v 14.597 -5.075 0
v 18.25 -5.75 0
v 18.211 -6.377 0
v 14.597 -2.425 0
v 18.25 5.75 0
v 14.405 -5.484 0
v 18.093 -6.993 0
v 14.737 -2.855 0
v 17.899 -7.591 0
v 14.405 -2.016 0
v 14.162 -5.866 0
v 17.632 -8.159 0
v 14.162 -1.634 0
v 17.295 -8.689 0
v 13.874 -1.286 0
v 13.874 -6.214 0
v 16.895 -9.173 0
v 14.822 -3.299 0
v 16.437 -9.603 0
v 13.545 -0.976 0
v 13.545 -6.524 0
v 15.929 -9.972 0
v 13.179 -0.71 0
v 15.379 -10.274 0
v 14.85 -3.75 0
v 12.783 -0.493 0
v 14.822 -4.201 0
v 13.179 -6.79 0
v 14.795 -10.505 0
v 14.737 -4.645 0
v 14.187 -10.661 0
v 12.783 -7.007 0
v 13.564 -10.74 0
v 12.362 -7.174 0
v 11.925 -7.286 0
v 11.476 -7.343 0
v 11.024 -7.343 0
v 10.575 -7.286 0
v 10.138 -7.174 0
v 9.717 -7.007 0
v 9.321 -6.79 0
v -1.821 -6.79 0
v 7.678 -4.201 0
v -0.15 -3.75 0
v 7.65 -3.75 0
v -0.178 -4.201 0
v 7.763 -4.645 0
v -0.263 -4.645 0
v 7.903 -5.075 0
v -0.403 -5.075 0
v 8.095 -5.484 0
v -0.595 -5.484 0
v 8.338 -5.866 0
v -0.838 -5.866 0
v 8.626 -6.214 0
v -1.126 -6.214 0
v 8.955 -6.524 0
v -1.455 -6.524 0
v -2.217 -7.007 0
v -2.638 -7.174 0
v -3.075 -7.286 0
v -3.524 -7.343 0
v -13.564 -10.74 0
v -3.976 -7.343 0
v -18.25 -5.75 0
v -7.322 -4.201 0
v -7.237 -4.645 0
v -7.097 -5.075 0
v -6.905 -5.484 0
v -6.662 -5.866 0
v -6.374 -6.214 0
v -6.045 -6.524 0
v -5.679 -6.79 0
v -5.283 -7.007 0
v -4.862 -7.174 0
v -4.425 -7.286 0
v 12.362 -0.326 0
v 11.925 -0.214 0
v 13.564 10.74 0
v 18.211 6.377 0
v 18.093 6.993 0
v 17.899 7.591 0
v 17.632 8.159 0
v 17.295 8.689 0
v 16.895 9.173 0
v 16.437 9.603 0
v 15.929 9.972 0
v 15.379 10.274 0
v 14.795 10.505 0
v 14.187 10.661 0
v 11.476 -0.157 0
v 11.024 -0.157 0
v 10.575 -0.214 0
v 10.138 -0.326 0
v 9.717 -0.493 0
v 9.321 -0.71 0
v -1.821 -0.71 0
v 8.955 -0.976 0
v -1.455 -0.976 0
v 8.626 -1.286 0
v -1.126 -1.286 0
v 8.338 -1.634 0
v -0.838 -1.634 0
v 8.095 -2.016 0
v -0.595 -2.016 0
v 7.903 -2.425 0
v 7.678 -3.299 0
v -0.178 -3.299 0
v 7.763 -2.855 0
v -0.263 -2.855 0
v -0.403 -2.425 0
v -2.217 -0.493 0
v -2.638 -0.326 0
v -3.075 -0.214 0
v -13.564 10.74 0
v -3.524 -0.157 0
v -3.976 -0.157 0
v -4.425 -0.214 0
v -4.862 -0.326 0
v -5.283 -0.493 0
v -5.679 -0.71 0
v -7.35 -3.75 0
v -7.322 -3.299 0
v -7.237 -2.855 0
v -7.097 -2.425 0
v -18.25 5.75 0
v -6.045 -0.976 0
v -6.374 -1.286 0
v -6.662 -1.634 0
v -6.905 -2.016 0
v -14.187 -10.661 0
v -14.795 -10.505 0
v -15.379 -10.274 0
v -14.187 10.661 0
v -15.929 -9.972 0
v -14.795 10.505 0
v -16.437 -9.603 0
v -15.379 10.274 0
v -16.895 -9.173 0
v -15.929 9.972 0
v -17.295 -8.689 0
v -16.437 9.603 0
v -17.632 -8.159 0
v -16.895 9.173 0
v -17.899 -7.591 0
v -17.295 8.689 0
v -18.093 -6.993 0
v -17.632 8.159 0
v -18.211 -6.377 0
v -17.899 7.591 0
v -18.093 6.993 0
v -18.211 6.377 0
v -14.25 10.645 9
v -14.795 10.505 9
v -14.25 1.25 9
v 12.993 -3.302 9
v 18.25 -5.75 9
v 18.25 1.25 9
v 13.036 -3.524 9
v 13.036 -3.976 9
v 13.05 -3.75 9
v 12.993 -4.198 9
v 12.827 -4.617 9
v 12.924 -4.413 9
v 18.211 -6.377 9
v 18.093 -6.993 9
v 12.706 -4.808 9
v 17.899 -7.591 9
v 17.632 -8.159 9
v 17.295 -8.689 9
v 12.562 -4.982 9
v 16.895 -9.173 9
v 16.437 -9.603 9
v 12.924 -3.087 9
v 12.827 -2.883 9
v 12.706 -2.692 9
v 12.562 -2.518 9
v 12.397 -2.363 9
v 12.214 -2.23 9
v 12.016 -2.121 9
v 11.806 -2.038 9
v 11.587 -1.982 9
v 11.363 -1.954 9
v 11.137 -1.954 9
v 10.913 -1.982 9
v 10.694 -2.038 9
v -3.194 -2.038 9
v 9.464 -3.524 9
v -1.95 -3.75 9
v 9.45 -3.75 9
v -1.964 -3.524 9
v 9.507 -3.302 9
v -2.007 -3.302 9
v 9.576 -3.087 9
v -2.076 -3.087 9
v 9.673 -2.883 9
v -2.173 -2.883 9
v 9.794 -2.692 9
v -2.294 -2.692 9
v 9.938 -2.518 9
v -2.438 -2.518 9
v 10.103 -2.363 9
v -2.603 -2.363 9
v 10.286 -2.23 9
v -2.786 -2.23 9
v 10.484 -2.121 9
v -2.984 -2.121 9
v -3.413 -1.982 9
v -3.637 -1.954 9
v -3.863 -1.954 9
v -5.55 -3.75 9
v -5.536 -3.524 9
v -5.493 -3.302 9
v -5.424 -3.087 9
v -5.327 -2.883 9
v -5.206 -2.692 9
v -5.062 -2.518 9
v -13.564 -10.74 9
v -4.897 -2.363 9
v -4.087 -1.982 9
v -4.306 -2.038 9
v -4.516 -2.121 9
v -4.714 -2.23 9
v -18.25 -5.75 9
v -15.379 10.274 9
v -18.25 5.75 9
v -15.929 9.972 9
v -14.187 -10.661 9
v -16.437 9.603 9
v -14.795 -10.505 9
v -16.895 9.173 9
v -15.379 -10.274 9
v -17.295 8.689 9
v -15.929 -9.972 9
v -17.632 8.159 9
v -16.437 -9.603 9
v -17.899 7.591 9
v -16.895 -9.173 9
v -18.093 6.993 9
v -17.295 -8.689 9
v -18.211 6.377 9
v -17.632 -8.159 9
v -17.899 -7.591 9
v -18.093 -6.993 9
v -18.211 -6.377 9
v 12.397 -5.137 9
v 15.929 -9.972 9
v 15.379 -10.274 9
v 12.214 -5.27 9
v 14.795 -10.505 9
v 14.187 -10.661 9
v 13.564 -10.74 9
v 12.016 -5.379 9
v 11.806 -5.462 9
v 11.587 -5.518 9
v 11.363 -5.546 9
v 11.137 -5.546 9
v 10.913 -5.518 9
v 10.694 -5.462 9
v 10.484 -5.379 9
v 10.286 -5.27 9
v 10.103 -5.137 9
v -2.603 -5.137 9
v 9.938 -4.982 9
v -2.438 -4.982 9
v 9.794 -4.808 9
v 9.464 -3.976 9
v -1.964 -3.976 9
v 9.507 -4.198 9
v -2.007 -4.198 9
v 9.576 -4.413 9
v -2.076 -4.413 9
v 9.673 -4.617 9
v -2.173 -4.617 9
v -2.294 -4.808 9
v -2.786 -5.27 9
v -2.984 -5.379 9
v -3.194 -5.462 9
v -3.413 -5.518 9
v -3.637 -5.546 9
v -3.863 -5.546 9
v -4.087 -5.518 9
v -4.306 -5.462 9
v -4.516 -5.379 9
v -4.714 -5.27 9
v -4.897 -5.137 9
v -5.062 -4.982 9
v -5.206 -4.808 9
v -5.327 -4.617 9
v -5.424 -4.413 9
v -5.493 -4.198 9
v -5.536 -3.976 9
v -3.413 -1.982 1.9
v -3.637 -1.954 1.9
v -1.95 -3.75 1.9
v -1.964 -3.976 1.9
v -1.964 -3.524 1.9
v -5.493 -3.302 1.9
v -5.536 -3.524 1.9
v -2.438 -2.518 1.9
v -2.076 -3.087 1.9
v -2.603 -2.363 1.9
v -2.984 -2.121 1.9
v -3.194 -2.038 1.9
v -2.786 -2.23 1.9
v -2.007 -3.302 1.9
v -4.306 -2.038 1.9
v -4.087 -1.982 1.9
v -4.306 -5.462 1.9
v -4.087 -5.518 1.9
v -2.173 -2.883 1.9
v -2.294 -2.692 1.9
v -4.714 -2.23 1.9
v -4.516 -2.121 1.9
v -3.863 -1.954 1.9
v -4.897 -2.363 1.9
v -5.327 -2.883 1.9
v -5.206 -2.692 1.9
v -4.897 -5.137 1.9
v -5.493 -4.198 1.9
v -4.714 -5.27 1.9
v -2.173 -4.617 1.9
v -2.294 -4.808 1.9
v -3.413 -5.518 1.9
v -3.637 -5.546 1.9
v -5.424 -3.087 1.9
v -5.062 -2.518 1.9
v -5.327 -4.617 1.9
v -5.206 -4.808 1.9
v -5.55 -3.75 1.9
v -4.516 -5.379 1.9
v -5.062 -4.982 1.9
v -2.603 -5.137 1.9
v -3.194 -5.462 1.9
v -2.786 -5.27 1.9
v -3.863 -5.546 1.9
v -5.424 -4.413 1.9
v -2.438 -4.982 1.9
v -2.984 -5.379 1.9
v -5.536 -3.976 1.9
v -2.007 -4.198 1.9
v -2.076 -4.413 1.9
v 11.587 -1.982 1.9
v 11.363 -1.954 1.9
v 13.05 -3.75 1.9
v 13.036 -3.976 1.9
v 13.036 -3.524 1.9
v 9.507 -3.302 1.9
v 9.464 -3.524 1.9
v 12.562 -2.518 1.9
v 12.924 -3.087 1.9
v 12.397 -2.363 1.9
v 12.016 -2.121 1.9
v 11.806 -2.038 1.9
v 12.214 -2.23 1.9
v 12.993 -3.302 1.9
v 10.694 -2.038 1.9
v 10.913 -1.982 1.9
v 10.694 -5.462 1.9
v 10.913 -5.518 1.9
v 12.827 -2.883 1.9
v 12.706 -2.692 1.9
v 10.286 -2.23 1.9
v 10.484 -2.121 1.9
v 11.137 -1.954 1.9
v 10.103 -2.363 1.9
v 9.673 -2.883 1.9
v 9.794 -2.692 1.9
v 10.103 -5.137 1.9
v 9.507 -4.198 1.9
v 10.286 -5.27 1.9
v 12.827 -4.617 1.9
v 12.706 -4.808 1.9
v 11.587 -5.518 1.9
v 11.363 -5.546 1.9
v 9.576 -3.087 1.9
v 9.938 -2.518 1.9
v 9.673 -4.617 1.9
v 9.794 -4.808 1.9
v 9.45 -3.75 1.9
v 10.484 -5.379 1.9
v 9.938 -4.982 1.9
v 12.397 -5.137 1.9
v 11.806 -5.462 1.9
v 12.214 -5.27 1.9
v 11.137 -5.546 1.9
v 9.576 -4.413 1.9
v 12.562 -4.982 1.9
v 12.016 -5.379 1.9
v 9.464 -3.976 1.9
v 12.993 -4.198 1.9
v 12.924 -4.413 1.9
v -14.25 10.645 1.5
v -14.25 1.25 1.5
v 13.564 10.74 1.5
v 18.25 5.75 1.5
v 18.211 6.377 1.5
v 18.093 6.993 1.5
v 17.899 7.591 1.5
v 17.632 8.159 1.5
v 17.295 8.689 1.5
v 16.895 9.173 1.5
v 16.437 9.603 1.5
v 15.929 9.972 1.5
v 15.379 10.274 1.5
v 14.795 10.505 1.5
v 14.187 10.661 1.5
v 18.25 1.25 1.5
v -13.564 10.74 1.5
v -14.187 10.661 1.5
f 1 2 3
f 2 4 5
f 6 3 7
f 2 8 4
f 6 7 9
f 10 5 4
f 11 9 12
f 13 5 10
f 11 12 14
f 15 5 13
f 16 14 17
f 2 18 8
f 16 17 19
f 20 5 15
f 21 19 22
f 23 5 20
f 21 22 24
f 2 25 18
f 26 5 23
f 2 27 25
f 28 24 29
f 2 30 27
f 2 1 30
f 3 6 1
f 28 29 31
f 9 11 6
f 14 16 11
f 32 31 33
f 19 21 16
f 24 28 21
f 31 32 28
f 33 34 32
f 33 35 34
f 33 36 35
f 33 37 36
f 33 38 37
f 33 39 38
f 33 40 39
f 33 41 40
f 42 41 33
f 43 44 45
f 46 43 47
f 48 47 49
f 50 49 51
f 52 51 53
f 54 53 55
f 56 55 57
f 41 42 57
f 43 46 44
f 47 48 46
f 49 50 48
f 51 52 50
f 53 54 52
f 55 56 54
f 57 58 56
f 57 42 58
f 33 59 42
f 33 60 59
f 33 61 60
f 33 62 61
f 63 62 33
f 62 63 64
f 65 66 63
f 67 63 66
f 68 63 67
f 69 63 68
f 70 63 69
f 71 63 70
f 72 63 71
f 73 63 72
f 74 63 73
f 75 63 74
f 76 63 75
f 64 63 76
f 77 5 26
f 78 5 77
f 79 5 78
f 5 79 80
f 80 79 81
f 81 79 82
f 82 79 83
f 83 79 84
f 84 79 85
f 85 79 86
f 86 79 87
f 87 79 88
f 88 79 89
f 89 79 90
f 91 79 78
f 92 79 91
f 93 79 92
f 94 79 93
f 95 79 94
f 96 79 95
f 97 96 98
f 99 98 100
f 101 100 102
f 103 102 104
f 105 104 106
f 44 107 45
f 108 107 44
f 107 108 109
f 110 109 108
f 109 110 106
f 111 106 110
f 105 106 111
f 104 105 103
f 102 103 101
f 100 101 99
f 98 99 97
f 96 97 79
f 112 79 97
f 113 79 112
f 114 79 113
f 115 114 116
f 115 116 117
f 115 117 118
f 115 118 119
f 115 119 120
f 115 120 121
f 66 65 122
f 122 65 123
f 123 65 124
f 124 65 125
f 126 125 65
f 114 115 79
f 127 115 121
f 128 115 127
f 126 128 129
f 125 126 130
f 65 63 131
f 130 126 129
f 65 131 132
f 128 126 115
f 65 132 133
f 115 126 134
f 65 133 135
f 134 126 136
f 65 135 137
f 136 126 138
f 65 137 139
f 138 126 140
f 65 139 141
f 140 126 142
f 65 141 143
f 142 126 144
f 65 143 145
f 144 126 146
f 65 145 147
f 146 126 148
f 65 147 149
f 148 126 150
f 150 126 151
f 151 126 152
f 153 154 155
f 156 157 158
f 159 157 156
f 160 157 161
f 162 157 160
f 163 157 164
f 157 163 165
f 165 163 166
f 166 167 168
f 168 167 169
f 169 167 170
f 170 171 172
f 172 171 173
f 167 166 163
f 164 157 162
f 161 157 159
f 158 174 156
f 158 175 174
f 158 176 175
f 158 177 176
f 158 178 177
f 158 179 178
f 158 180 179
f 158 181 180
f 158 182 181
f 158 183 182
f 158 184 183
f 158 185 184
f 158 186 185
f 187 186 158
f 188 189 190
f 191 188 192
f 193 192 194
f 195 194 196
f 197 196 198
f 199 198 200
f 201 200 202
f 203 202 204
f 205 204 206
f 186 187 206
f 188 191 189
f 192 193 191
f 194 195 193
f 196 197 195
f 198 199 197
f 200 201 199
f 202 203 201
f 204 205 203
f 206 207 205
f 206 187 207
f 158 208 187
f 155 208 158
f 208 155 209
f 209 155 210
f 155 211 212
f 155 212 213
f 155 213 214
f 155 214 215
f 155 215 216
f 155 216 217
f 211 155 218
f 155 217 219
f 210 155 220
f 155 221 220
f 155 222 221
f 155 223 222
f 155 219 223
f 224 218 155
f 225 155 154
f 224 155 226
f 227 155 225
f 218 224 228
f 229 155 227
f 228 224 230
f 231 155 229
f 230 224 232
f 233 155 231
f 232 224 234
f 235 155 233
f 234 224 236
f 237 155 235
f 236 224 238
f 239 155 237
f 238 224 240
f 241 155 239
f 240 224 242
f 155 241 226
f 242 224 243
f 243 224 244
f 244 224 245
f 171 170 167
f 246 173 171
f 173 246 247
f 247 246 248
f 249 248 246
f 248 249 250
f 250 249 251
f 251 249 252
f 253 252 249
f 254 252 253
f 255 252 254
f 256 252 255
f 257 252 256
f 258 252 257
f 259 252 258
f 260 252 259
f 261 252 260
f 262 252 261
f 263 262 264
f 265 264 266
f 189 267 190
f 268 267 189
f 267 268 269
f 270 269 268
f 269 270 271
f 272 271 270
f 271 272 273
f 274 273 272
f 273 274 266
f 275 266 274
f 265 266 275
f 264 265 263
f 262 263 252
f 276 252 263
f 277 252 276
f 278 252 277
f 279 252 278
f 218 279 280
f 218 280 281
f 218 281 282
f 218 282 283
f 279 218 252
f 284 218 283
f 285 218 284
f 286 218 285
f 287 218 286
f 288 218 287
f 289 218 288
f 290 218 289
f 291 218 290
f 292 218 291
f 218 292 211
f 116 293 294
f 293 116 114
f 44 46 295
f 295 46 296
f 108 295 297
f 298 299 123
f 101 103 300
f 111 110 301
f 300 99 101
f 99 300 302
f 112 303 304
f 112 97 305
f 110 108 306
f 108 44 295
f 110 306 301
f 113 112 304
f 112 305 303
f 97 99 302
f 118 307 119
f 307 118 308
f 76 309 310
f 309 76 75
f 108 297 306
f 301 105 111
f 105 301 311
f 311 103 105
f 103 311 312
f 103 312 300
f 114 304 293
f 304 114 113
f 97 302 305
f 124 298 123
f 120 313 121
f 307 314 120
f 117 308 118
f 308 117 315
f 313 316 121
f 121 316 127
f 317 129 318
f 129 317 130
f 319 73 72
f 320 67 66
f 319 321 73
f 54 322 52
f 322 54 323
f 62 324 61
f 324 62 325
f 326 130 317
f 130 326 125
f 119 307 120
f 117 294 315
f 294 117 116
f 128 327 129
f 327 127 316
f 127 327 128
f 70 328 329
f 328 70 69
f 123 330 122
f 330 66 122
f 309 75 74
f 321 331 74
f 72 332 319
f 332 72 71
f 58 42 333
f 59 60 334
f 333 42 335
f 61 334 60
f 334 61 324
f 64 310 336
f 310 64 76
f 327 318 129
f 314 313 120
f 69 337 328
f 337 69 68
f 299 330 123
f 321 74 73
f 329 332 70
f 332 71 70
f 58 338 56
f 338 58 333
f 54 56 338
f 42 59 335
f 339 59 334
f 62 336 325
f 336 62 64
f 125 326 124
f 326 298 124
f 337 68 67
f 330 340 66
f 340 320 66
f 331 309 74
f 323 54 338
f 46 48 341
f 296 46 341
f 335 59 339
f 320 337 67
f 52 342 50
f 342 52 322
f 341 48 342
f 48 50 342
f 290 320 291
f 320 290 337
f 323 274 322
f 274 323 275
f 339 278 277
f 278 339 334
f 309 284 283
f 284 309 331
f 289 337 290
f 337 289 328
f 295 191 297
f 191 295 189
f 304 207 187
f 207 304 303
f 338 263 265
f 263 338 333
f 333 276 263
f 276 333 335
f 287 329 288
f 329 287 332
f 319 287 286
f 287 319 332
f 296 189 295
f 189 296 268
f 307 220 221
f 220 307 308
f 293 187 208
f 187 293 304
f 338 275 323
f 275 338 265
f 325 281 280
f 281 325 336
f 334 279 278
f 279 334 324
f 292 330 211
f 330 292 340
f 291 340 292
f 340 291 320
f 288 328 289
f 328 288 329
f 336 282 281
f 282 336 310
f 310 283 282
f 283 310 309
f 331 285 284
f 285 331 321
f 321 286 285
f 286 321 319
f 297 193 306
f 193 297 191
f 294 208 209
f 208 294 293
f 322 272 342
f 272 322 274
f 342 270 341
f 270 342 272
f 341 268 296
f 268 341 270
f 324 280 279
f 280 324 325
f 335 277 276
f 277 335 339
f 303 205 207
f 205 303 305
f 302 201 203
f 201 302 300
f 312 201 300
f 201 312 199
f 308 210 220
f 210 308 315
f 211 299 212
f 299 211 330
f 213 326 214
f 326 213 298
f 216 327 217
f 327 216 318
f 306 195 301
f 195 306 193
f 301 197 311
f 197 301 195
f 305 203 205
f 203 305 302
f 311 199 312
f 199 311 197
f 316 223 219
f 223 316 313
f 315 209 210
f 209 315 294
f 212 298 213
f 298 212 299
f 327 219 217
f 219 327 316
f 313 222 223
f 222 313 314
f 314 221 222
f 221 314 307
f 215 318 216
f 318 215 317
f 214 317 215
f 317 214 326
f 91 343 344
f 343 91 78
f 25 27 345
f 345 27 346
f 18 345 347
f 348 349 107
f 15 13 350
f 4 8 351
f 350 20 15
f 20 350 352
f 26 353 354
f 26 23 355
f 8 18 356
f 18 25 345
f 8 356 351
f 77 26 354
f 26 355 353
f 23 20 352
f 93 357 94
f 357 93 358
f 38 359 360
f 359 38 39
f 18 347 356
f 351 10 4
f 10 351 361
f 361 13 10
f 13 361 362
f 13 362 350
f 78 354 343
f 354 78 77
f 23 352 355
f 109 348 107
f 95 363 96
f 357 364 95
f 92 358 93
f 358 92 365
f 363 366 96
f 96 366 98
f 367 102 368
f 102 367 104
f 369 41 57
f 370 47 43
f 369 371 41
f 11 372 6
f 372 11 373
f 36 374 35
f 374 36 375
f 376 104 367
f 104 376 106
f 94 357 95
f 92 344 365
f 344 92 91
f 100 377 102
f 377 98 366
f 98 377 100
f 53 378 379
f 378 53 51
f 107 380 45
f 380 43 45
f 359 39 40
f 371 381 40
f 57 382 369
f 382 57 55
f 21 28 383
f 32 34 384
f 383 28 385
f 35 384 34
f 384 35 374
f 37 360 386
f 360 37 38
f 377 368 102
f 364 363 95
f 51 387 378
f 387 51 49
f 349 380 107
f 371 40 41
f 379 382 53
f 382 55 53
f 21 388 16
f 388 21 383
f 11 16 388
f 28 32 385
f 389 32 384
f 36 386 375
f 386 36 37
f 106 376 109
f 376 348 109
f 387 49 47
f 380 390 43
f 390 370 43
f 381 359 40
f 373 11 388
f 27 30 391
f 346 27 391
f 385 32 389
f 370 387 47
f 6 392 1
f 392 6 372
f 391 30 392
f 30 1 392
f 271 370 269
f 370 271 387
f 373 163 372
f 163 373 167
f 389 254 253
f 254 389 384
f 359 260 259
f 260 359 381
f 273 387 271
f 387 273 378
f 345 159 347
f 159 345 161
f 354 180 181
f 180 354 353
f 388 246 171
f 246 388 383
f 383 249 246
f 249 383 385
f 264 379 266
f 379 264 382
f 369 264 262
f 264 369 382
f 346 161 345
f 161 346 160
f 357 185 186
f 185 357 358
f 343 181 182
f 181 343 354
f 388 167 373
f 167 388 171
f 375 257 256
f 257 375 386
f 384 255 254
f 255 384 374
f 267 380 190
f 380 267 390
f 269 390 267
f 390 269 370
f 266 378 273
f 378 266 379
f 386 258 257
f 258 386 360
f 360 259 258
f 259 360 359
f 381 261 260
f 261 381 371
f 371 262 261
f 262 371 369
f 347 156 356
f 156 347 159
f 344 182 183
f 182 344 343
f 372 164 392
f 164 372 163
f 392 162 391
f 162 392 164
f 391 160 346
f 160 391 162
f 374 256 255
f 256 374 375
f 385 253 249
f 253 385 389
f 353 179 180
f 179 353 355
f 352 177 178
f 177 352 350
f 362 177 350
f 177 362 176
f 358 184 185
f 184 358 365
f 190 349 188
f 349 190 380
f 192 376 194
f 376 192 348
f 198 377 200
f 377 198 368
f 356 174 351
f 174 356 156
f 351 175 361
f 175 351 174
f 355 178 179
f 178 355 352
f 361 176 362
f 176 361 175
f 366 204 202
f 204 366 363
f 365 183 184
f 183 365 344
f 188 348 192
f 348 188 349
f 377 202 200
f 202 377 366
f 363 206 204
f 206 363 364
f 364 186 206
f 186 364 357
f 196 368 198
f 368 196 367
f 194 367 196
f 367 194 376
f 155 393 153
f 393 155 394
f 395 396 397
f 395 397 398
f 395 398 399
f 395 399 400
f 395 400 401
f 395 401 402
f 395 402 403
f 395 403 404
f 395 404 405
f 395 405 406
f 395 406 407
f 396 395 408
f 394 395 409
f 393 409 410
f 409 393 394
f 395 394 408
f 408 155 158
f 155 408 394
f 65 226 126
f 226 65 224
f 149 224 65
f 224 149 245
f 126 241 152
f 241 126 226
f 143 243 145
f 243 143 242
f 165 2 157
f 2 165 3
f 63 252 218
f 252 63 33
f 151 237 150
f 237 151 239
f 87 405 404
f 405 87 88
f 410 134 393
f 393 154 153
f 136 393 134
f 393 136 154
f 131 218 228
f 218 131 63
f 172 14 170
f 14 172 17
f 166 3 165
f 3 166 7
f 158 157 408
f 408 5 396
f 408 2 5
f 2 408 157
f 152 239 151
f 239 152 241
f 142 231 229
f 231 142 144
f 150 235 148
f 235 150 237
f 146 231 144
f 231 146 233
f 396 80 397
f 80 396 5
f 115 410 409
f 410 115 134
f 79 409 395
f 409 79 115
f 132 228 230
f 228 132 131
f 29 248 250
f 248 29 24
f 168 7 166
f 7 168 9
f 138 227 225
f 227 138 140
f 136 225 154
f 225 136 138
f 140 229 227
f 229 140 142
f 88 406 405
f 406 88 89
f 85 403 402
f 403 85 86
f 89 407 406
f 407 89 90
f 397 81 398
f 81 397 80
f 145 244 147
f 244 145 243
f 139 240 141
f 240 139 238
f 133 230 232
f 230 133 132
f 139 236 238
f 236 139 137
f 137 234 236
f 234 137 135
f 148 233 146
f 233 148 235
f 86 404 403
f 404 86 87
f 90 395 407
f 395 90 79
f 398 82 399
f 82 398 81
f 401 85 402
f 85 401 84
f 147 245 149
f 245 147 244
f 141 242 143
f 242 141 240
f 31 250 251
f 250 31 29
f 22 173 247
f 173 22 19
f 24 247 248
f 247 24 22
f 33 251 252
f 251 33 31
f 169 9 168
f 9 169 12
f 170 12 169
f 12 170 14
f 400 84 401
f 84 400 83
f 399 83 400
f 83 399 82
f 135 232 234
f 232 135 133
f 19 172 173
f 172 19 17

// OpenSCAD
$fn = 50;


difference() {
	union() {
		hull() {
			translate(v = [-13.2500000000, 5.7500000000, 0]) {
				cylinder(h = 9, r = 5);
			}
			translate(v = [13.2500000000, 5.7500000000, 0]) {
				cylinder(h = 9, r = 5);
			}
			translate(v = [-13.2500000000, -5.7500000000, 0]) {
				cylinder(h = 9, r = 5);
			}
			translate(v = [13.2500000000, -5.7500000000, 0]) {
				cylinder(h = 9, r = 5);
			}
		}
	}
	union() {
		translate(v = [-3.7500000000, -3.7500000000, 0]) {
			rotate(a = [180, 0, 0]) {
				difference() {
					union() {
						#translate(v = [0, 0, -9.0000000000]) {
							cylinder(h = 9, r = 1.5000000000);
						}
						#translate(v = [0, 0, -1.9000000000]) {
							cylinder(h = 1.9000000000, r1 = 1.8000000000, r2 = 3.6000000000);
						}
						#translate(v = [0, 0, -9.0000000000]) {
							cylinder(h = 9, r = 1.8000000000);
						}
						#translate(v = [0, 0, -9.0000000000]) {
							cylinder(h = 9, r = 1.5000000000);
						}
					}
					union();
				}
			}
		}
		translate(v = [11.2500000000, -3.7500000000, 0]) {
			rotate(a = [180, 0, 0]) {
				difference() {
					union() {
						#translate(v = [0, 0, -9.0000000000]) {
							cylinder(h = 9, r = 1.5000000000);
						}
						#translate(v = [0, 0, -1.9000000000]) {
							cylinder(h = 1.9000000000, r1 = 1.8000000000, r2 = 3.6000000000);
						}
						#translate(v = [0, 0, -9.0000000000]) {
							cylinder(h = 9, r = 1.8000000000);
						}
						#translate(v = [0, 0, -9.0000000000]) {
							cylinder(h = 9, r = 1.5000000000);
						}
					}
					union();
				}
			}
		}
		translate(v = [26.2500000000, -3.7500000000, 0]) {
			rotate(a = [180, 0, 0]) {
				difference() {
					union() {
						#translate(v = [0, 0, -9.0000000000]) {
							cylinder(h = 9, r = 1.5000000000);
						}
						#translate(v = [0, 0, -1.9000000000]) {
							cylinder(h = 1.9000000000, r1 = 1.8000000000, r2 = 3.6000000000);
						}
						#translate(v = [0, 0, -9.0000000000]) {
							cylinder(h = 9, r = 1.8000000000);
						}
						#translate(v = [0, 0, -9.0000000000]) {
							cylinder(h = 9, r = 1.5000000000);
						}
					}
					union();
				}
			}
		}
		translate(v = [41.2500000000, -3.7500000000, 0]) {
			rotate(a = [180, 0, 0]) {
				difference() {
					union() {
						#translate(v = [0, 0, -9.0000000000]) {
							cylinder(h = 9, r = 1.5000000000);
						}
						#translate(v = [0, 0, -1.9000000000]) {
							cylinder(h = 1.9000000000, r1 = 1.8000000000, r2 = 3.6000000000);
						}
						#translate(v = [0, 0, -9.0000000000]) {
							cylinder(h = 9, r = 1.8000000000);
						}
						#translate(v = [0, 0, -9.0000000000]) {
							cylinder(h = 9, r = 1.5000000000);
						}
					}
					union();
				}
			}
		}
		#translate(v = [-14.2500000000, 1.2500000000, 1.5000000000]) {
			cube(size = [156, 100, 7.5000000000]);
		}
	}
}
